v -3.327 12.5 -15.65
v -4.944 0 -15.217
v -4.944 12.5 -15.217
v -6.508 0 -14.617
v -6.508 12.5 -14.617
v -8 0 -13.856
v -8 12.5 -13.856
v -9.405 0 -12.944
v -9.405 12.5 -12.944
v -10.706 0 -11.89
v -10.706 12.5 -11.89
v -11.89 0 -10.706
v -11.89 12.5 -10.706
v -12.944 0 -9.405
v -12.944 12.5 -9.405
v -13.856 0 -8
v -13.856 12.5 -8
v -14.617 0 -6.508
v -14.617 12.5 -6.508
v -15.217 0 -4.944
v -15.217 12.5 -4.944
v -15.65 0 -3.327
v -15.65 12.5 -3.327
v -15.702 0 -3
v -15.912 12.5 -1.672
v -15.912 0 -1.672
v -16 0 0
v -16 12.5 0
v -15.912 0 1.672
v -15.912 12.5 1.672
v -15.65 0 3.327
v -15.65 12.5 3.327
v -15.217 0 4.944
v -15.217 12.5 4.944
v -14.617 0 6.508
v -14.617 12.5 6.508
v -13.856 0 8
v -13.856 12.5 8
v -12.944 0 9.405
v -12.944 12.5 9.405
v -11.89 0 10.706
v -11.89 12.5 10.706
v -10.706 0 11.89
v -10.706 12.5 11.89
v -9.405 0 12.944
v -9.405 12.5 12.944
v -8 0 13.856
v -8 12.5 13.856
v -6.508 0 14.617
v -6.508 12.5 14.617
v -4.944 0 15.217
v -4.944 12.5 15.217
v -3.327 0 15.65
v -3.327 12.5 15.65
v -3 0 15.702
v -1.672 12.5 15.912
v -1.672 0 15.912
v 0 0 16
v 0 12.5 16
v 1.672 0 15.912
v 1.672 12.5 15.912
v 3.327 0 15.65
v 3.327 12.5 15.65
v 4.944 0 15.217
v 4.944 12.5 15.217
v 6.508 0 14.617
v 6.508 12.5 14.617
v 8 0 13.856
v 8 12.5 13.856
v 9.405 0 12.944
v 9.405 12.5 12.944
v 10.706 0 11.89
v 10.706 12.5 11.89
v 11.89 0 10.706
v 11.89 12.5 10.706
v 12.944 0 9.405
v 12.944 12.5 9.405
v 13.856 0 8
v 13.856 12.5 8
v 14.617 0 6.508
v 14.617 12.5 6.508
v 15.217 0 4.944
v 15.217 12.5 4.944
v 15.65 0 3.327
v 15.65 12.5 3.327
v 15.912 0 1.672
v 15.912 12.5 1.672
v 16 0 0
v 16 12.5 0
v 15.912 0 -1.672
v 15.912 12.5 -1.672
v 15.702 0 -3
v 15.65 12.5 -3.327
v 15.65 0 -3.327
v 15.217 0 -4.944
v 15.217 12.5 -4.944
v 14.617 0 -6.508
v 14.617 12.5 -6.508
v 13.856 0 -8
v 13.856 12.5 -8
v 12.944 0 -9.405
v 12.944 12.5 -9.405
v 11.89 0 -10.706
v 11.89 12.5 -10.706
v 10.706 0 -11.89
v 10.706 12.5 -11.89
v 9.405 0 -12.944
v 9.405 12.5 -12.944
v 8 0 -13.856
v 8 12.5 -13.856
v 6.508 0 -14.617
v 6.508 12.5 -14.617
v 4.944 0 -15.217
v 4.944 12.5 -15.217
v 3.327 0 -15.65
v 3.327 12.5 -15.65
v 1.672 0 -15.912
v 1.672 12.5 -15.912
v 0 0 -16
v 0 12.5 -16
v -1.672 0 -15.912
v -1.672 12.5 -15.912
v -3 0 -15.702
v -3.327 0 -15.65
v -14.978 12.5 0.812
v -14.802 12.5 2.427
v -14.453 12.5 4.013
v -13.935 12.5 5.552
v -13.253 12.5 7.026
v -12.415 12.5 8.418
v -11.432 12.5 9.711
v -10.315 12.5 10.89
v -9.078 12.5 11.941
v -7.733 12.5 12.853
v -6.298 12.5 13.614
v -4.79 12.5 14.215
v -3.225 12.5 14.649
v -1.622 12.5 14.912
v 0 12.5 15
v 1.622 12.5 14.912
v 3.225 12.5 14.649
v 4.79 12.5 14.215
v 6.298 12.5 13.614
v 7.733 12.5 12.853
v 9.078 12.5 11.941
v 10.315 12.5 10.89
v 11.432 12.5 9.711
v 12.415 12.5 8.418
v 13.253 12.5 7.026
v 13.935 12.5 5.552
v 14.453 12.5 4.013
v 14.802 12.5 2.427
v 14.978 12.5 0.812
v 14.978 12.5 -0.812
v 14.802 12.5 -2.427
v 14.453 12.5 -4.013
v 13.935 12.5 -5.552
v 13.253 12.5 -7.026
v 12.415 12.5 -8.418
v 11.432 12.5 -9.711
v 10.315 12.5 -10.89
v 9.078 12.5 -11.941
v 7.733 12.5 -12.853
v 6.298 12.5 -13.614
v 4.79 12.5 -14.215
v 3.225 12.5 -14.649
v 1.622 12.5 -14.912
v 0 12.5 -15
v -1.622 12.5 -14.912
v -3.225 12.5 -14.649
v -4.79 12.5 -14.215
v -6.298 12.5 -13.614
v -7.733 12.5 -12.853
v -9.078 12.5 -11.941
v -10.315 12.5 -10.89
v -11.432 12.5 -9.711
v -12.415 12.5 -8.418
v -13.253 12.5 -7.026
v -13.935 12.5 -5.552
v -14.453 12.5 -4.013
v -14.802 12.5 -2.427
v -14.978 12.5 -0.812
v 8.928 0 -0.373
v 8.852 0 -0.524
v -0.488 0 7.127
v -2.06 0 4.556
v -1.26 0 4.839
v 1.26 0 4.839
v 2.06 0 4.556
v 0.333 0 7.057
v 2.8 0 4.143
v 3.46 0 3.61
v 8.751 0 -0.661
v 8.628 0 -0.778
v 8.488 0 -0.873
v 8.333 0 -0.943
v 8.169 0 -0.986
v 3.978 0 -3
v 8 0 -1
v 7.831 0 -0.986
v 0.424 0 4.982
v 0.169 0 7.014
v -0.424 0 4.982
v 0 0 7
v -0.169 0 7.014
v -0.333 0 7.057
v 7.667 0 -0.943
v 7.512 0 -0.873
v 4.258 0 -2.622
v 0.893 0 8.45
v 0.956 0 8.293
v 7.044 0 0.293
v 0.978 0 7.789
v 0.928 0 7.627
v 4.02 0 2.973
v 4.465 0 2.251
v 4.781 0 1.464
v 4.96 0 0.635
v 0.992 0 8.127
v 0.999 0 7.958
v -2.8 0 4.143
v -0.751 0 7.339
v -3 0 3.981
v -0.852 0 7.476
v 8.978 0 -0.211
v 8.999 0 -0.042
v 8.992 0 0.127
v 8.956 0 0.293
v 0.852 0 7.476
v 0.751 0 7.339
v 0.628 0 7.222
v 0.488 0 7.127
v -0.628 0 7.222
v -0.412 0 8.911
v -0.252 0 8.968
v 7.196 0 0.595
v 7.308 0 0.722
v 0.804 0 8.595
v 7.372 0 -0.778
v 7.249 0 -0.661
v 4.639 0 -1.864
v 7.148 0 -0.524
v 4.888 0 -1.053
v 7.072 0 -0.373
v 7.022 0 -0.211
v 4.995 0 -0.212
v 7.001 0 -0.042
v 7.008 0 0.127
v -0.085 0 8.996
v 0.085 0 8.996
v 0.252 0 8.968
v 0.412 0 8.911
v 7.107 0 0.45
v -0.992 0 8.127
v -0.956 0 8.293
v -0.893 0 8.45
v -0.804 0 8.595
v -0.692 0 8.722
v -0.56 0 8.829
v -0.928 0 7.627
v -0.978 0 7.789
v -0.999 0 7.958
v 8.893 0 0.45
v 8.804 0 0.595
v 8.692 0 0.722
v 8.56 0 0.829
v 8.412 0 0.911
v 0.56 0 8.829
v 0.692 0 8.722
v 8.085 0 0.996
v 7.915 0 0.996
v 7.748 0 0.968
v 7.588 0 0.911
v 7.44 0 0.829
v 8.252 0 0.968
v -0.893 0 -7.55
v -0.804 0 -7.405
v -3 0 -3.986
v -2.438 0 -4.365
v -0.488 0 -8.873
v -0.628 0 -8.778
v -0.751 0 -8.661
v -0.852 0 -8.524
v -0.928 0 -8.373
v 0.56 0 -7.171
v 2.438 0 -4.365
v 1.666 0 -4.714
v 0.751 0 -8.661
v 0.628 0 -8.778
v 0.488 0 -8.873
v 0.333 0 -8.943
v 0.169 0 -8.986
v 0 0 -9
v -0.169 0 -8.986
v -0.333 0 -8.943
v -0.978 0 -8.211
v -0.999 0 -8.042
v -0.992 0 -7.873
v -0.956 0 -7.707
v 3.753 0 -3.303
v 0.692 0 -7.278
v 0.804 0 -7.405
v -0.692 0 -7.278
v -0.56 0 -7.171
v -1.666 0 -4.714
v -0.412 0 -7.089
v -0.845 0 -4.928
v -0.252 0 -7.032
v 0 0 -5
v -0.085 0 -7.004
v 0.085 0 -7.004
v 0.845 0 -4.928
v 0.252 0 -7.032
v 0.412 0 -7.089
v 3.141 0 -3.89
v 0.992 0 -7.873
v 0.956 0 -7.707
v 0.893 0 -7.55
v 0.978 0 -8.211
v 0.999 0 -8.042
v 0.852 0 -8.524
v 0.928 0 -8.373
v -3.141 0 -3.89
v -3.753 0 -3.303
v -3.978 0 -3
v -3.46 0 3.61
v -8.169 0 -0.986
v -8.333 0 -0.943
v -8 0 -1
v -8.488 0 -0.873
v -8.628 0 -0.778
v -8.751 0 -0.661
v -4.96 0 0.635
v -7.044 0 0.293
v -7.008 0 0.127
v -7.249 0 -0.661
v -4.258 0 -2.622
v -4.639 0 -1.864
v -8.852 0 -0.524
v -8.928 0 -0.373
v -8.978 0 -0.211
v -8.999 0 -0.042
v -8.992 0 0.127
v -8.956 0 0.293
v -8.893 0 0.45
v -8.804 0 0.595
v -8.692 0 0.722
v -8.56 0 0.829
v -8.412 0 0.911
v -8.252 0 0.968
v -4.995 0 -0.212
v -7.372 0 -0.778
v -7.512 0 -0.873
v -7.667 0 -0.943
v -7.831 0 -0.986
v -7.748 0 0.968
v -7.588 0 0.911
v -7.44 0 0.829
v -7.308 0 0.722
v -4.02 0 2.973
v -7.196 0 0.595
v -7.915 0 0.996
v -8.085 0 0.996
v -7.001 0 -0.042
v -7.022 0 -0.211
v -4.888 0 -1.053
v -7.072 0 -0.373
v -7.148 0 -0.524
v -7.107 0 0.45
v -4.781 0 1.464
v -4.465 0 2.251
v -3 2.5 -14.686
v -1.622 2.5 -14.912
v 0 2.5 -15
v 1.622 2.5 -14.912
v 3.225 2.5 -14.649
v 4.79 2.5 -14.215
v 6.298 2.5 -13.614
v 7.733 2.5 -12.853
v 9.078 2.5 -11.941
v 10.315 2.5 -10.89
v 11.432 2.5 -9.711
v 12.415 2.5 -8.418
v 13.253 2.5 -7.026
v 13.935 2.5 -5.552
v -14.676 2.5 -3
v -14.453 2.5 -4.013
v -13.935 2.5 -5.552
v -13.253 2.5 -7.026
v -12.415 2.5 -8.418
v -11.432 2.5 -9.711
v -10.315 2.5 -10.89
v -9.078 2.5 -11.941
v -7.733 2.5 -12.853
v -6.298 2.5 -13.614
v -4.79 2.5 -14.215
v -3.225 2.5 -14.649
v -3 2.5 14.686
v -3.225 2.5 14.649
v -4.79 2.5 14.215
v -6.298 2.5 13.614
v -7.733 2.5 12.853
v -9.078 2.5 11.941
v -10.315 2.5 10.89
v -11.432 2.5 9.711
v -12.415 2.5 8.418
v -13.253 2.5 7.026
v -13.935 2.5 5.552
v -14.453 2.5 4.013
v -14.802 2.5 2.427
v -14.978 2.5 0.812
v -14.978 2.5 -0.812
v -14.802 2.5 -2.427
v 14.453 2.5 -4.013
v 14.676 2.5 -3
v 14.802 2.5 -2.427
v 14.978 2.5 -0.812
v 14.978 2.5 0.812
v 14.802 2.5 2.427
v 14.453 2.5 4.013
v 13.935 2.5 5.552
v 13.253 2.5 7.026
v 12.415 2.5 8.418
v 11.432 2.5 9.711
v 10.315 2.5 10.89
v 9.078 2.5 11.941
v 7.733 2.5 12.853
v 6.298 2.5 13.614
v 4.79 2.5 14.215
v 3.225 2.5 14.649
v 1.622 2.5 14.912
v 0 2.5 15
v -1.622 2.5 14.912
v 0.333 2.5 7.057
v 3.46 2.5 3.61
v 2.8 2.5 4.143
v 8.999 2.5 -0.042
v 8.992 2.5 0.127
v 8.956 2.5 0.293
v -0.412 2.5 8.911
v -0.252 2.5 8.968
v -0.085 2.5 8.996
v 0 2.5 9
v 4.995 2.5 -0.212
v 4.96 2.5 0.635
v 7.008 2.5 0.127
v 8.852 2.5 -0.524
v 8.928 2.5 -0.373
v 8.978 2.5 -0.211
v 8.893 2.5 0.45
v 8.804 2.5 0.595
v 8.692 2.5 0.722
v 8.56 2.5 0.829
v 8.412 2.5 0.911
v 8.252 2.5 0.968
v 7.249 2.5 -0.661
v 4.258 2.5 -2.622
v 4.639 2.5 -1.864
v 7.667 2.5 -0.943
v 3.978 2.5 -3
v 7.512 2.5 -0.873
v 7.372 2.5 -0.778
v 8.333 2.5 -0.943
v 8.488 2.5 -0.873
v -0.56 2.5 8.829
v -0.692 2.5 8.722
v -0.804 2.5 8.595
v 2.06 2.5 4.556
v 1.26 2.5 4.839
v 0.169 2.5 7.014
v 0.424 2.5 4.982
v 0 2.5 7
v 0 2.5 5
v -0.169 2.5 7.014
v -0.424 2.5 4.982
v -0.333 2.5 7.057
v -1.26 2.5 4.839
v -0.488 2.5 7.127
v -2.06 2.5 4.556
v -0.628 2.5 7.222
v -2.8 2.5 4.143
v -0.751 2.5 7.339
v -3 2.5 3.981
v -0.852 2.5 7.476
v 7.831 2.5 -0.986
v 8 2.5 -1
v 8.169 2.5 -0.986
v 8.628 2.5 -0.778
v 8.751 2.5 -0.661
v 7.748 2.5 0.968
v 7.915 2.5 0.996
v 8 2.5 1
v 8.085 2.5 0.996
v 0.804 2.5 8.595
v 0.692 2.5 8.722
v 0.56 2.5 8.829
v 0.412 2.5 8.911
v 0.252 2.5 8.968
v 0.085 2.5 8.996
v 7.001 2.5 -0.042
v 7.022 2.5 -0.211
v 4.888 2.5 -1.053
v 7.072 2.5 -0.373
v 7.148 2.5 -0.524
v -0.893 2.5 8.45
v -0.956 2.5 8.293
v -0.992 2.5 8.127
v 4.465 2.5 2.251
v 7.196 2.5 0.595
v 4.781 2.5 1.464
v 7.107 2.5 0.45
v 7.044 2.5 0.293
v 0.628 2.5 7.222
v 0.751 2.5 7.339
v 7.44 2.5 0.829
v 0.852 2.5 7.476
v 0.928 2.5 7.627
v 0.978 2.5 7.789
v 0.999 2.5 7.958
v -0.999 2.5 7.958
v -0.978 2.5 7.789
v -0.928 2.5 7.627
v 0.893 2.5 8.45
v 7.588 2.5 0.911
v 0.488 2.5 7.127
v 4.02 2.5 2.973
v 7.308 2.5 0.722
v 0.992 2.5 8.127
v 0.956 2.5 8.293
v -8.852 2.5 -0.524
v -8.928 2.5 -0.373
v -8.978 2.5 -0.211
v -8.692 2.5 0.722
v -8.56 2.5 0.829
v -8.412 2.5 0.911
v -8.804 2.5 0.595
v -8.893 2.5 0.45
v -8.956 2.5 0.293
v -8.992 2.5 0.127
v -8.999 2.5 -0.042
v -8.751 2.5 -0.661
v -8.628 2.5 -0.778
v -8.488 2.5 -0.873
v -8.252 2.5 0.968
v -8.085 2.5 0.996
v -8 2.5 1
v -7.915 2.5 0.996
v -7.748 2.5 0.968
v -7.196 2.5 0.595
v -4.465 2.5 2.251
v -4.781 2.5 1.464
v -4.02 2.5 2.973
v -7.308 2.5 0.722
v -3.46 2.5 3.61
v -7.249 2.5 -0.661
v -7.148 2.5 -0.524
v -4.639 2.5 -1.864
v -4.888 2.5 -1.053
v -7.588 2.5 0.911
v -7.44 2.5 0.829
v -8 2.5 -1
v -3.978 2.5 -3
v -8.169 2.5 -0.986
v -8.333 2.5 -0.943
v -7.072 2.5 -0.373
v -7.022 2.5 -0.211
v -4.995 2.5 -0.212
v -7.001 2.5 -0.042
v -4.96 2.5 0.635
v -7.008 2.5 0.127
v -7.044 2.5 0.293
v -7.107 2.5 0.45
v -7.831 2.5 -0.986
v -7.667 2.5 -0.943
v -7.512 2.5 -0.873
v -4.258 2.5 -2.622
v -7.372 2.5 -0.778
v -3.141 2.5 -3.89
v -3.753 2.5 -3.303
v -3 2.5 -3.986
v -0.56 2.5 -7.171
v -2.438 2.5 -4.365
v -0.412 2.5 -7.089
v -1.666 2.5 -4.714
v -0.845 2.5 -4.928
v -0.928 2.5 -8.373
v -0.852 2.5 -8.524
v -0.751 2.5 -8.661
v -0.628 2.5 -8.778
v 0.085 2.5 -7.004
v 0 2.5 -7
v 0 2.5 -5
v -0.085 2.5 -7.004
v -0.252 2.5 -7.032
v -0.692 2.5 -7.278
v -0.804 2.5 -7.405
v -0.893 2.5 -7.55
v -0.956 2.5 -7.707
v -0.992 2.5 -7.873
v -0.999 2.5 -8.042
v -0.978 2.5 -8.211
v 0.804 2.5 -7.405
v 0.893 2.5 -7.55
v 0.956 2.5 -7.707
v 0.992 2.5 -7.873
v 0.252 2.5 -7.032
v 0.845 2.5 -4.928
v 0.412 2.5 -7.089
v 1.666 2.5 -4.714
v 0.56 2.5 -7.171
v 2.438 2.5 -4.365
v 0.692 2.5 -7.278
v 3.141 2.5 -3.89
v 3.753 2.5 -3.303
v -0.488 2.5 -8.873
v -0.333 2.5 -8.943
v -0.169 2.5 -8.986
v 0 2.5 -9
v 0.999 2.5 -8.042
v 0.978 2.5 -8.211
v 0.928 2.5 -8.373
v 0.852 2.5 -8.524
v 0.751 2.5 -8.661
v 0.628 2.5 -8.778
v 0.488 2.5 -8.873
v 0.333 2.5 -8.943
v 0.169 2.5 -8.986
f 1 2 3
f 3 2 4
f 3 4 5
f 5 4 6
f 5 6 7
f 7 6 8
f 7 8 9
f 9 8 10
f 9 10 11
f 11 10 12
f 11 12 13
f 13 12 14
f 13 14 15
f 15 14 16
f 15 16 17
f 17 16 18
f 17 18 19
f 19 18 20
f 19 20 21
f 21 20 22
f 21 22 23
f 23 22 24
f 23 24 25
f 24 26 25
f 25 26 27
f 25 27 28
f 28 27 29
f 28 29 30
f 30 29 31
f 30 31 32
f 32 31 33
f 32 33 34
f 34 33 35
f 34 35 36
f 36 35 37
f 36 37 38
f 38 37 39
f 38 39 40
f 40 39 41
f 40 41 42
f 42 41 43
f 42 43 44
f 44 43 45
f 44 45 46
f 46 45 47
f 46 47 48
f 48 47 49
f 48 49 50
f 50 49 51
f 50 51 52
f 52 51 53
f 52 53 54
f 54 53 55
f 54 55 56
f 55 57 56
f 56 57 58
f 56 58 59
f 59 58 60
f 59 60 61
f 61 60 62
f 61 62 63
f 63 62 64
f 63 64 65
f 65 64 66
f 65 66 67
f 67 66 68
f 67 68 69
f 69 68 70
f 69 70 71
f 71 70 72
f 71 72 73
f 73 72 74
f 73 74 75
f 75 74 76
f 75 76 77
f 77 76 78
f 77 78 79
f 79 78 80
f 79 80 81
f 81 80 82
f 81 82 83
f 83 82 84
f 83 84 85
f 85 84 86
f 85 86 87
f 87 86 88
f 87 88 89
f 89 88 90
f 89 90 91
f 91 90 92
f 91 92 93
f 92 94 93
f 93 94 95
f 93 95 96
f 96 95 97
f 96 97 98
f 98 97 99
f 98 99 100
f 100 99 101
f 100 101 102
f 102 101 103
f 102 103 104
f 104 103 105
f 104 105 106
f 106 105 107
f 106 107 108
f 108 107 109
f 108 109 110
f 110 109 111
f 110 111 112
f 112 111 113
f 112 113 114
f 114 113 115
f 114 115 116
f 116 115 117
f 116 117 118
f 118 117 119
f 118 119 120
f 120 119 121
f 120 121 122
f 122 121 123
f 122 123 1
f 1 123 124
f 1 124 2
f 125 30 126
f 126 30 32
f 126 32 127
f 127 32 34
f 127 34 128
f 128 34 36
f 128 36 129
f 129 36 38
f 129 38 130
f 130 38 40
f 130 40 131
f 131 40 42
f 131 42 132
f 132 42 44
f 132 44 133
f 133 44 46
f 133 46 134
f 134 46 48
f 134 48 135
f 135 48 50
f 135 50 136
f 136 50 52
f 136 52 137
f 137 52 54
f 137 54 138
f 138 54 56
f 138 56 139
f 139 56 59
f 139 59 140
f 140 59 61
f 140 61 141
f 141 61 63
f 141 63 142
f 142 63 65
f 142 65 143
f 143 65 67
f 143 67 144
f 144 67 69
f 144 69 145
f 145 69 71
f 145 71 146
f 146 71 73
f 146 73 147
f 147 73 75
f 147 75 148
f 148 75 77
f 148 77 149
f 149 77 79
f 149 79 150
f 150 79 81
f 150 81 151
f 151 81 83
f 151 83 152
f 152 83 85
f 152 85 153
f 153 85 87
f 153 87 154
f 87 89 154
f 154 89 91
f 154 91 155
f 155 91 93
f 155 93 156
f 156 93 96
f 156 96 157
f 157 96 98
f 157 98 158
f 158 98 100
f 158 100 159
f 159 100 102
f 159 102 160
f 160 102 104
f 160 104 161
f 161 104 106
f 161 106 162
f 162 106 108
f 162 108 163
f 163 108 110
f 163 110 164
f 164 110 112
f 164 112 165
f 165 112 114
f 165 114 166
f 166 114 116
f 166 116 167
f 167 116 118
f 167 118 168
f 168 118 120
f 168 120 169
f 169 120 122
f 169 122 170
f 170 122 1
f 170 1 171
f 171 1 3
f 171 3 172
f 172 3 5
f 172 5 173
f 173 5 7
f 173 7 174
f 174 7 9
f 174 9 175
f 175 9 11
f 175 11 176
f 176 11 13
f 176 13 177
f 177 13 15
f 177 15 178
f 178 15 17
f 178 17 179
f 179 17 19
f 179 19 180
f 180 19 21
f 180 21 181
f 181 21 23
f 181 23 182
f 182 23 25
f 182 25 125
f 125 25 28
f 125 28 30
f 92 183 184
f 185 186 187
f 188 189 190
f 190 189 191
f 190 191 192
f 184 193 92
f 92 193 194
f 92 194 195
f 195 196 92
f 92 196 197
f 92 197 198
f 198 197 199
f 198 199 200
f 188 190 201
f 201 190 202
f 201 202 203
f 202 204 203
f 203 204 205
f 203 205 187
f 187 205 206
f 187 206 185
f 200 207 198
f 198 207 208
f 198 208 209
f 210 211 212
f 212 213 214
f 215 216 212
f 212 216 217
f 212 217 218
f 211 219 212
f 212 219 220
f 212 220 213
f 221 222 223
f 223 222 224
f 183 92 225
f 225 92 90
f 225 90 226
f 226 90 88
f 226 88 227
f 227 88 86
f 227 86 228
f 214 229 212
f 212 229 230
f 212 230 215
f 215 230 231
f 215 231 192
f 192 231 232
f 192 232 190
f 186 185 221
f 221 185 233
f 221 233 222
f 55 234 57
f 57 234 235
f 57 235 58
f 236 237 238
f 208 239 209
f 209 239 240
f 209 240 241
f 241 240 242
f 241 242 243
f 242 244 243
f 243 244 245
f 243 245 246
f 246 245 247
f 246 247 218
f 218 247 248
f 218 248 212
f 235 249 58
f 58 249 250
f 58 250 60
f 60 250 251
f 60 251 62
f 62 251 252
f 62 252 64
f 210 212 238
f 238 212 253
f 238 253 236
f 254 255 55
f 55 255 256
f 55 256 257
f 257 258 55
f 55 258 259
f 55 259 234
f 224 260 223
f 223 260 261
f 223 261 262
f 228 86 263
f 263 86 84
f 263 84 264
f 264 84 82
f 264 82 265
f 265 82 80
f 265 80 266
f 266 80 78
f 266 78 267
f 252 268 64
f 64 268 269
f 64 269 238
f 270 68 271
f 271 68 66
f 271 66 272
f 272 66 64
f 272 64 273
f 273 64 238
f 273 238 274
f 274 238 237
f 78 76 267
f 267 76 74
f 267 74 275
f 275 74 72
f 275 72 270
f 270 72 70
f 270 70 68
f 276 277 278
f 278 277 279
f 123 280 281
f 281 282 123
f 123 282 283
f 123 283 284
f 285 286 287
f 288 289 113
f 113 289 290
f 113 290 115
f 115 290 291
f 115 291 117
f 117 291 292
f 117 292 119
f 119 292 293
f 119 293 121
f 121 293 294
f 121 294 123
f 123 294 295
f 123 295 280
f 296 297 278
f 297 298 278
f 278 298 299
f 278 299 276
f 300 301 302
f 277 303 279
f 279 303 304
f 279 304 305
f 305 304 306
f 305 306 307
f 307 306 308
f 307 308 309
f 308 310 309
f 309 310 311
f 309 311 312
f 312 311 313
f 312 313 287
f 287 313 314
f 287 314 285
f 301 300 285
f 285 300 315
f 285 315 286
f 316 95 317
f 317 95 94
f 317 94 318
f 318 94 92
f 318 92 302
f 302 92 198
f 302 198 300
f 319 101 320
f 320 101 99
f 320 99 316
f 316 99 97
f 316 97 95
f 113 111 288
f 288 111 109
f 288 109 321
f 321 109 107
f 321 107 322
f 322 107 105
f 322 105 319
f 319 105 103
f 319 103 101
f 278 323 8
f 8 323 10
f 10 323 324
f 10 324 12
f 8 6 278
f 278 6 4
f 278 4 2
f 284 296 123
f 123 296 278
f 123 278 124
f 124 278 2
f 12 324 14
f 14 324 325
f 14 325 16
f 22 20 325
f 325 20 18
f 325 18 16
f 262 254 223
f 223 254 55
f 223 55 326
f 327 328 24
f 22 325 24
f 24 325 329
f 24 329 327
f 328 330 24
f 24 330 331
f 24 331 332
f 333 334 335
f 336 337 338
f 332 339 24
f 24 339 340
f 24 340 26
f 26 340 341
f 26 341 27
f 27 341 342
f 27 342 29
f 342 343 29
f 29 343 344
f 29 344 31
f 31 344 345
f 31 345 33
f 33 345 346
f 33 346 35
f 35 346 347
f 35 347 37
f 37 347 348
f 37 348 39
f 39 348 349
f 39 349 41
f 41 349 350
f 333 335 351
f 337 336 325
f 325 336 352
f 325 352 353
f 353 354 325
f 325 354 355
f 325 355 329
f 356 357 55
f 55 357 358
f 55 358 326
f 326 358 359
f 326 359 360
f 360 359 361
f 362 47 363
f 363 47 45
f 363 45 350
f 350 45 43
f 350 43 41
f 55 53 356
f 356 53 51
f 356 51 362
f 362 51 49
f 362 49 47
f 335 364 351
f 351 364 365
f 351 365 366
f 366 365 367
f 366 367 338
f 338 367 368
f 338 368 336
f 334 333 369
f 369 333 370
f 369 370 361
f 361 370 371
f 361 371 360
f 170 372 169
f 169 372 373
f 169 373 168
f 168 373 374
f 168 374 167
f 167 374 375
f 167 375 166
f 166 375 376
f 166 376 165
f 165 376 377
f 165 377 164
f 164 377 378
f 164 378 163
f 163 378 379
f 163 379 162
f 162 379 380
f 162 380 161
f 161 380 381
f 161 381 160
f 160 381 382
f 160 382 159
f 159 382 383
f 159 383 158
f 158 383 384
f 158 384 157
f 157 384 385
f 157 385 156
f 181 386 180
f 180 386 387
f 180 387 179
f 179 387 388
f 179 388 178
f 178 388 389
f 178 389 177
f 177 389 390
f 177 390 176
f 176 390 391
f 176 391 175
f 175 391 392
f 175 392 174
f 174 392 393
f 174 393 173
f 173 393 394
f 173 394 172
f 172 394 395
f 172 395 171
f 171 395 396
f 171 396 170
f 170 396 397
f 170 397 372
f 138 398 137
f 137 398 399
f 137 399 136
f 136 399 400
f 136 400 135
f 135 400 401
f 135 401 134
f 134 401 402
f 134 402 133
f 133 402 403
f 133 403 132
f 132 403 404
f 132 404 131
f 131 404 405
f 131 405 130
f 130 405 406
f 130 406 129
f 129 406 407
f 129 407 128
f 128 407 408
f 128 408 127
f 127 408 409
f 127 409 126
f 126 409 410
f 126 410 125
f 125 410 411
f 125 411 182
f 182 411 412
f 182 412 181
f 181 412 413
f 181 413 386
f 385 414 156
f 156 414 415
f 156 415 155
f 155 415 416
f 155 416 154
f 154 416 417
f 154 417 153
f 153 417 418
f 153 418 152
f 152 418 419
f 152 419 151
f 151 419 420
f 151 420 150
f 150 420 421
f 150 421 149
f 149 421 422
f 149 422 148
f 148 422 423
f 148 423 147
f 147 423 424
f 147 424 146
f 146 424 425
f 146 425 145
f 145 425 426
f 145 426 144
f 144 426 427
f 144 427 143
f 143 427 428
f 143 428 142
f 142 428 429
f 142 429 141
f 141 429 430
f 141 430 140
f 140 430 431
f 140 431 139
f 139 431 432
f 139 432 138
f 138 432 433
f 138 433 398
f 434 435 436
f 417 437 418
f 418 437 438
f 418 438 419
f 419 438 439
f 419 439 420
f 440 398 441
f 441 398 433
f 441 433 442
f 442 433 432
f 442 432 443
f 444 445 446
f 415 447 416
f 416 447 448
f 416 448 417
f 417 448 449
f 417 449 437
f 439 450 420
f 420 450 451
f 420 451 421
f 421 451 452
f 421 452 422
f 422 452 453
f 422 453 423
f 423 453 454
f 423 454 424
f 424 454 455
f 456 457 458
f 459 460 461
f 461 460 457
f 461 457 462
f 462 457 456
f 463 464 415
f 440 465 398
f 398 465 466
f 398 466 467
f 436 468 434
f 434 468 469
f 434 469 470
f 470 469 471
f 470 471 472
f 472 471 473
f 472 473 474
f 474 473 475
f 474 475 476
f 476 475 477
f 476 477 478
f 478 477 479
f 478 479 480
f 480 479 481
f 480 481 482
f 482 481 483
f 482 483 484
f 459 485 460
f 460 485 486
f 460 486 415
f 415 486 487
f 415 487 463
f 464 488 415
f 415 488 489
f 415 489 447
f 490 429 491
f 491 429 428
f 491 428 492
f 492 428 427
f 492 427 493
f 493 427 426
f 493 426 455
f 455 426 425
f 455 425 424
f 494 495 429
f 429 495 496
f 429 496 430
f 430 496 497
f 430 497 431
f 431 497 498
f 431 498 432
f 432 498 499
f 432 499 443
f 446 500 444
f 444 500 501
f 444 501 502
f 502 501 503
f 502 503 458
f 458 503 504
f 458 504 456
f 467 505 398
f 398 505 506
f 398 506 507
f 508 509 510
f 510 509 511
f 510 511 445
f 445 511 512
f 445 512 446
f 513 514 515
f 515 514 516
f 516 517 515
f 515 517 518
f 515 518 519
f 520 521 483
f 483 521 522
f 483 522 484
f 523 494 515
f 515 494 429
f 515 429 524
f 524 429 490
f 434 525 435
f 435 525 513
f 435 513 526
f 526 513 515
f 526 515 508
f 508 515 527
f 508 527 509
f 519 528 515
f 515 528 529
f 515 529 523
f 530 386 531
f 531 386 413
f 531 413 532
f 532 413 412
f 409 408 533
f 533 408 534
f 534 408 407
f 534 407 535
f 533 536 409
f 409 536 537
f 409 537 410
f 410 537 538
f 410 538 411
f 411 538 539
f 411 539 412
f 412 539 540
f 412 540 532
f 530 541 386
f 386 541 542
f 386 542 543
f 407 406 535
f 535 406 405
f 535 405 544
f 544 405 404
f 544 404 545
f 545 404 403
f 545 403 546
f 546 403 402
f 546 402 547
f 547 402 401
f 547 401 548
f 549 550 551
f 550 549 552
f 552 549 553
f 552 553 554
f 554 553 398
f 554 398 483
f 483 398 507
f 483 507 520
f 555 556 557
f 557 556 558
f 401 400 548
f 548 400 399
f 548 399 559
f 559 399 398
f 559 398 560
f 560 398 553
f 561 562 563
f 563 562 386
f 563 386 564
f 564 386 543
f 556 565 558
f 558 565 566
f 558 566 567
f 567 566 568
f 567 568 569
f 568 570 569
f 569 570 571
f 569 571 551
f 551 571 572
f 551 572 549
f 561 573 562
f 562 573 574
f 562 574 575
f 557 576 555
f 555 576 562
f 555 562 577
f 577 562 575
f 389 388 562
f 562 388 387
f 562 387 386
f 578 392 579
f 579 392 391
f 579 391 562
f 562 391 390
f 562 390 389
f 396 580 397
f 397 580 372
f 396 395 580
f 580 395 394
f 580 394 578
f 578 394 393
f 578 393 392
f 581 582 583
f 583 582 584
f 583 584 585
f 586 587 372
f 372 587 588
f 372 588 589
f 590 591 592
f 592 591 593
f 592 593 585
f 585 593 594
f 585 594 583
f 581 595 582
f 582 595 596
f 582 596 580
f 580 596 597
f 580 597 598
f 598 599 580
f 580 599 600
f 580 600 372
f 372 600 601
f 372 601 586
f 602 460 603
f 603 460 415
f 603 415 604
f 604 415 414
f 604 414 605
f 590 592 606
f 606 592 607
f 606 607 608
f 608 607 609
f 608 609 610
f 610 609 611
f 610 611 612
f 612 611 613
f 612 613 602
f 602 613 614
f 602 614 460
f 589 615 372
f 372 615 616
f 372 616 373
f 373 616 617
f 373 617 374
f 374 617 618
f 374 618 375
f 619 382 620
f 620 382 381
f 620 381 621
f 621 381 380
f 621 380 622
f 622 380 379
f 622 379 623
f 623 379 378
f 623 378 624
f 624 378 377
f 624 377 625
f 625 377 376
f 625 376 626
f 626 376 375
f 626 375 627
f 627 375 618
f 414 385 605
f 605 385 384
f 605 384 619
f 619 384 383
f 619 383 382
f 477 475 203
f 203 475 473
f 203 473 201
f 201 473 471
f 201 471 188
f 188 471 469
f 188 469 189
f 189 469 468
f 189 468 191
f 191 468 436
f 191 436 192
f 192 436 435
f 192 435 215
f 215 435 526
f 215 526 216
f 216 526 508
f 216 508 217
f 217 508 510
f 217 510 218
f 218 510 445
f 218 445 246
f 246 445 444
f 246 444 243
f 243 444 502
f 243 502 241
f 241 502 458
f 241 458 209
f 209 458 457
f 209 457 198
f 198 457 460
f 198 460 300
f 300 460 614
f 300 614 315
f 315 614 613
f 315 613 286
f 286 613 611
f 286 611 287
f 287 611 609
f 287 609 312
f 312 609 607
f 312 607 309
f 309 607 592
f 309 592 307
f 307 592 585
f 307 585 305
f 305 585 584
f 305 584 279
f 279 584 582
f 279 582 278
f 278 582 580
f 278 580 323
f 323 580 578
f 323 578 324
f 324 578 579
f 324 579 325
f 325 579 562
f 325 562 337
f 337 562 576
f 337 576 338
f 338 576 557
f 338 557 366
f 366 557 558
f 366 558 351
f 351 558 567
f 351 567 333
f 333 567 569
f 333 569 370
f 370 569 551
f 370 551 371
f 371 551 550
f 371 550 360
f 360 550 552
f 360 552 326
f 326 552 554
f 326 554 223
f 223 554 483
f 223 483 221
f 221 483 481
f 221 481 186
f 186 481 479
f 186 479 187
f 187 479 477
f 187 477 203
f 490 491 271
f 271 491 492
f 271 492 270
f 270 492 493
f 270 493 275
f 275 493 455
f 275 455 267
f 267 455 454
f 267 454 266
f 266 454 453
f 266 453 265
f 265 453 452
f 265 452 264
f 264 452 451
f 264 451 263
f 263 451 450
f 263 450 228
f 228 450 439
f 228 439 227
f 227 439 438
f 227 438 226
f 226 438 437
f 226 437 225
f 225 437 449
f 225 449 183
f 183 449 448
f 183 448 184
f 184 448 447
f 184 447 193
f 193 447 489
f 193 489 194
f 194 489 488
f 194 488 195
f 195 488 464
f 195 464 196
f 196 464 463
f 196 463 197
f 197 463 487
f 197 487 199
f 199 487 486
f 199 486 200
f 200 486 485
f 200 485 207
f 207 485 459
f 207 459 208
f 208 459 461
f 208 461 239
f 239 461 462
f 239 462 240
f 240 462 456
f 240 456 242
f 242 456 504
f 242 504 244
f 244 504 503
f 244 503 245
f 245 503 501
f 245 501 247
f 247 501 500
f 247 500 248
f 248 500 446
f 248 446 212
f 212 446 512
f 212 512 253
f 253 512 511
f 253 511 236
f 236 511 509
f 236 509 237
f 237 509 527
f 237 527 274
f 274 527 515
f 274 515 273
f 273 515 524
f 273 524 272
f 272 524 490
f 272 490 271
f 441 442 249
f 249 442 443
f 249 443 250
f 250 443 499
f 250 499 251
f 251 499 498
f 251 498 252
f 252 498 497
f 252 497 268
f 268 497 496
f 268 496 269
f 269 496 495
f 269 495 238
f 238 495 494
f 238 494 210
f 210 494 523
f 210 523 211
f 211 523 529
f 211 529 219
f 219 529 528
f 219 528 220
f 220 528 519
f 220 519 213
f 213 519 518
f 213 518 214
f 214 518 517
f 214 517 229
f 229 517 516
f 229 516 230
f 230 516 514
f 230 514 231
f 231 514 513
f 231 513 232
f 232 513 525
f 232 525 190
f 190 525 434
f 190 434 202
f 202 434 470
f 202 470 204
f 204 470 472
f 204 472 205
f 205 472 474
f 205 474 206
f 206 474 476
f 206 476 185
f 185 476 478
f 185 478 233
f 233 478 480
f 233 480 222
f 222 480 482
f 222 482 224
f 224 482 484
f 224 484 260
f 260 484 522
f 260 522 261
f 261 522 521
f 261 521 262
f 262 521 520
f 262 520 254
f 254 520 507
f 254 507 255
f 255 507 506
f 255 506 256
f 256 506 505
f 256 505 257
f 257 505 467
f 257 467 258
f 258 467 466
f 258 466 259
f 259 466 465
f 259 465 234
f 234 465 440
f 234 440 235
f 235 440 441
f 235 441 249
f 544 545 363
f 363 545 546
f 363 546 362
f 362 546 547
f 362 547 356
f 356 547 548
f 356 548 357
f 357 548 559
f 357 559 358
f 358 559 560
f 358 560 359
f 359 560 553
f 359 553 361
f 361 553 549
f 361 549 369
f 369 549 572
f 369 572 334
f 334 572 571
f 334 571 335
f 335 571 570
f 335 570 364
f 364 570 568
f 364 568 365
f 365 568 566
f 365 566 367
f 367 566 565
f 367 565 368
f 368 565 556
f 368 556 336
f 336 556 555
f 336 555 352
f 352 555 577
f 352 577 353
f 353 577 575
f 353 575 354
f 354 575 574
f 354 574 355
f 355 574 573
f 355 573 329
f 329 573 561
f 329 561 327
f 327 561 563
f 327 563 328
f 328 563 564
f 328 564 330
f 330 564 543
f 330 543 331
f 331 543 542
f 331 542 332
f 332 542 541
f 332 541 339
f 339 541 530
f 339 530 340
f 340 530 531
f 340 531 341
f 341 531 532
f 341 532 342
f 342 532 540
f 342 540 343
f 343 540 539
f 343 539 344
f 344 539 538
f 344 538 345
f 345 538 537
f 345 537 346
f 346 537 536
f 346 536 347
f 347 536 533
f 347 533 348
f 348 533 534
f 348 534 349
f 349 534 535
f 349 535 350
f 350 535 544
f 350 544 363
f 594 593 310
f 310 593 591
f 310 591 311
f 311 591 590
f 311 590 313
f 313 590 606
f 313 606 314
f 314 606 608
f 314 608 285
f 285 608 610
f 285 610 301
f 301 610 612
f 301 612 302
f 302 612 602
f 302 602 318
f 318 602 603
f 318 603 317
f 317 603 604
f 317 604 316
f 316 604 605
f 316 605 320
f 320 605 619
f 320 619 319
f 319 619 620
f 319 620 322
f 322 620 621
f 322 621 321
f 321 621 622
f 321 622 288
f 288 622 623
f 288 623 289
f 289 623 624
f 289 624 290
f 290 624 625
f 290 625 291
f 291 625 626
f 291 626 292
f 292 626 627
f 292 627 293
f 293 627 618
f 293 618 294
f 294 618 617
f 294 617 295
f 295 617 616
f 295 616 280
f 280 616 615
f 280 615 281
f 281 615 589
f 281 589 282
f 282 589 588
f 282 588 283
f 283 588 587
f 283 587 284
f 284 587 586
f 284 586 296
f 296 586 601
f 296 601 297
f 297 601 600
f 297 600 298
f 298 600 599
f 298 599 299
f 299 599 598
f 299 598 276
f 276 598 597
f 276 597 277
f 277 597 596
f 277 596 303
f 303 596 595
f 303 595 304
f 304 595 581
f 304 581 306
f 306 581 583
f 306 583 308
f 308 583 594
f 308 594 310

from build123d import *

# Parameters (mm, degrees)
SKETCH1_R           = 16
BOSS_EXTRUDE1_DEPTH = 12.5
SKETCH2_R           = 15
CUT_EXTRUDE1_DEPTH  = 10
SKETCH3_R           = 5
CUT_EXTRUDE2_DEPTH  = 10
SKETCH4_R           = 1
CUT_EXTRUDE3_DEPTH  = 10


with BuildPart() as part:
    # Sketch1 → Boss-Extrude1 (new body)
    with BuildSketch(Plane(origin=(0, 0, 0), x_dir=(1, 0, 0), z_dir=(0, 1, 0))):
        with Locations(Location((0, 0, 0), (0, 0, 270))):
            Circle(SKETCH1_R)
    extrude(amount=BOSS_EXTRUDE1_DEPTH)

    # Sketch2 → Cut-Extrude1 (cut)
    with BuildSketch(Plane(origin=(0, 12.5, 0), x_dir=(1, 0, 0), z_dir=(0, 1, 0))):
        with Locations(Location((0, 0, 0), (0, 0, 270))):
            Circle(SKETCH2_R)
    extrude(amount=-CUT_EXTRUDE1_DEPTH, mode=Mode.SUBTRACT)

    # Sketch3 → Cut-Extrude2 (cut)
    with BuildSketch(Plane(origin=(0, 0, 0), x_dir=(-1, 0, 0), z_dir=(0, -1, 0))):
        with Locations(Location((0, 0, 0), (0, 0, 90))):
            Circle(SKETCH3_R)
    extrude(amount=-CUT_EXTRUDE2_DEPTH, mode=Mode.SUBTRACT)

    # Sketch4 → Cut-Extrude3 (cut)
    with BuildSketch(Plane(origin=(0, 0, 0), x_dir=(-1, 0, 0), z_dir=(0, -1, 0))):
        with Locations(Location((0, 8, 0), (0, 0, 90))):
            Circle(SKETCH4_R)
        with Locations(Location((0, -8, 0), (0, 0, 90))):
            Circle(SKETCH4_R)
        with Locations(Location((-8, 0, 0), (0, 0, 90))):
            Circle(SKETCH4_R)
        with Locations(Location((8, 0, 0), (0, 0, 90))):
            Circle(SKETCH4_R)
    extrude(amount=-CUT_EXTRUDE3_DEPTH, mode=Mode.SUBTRACT)


solid = part.part
